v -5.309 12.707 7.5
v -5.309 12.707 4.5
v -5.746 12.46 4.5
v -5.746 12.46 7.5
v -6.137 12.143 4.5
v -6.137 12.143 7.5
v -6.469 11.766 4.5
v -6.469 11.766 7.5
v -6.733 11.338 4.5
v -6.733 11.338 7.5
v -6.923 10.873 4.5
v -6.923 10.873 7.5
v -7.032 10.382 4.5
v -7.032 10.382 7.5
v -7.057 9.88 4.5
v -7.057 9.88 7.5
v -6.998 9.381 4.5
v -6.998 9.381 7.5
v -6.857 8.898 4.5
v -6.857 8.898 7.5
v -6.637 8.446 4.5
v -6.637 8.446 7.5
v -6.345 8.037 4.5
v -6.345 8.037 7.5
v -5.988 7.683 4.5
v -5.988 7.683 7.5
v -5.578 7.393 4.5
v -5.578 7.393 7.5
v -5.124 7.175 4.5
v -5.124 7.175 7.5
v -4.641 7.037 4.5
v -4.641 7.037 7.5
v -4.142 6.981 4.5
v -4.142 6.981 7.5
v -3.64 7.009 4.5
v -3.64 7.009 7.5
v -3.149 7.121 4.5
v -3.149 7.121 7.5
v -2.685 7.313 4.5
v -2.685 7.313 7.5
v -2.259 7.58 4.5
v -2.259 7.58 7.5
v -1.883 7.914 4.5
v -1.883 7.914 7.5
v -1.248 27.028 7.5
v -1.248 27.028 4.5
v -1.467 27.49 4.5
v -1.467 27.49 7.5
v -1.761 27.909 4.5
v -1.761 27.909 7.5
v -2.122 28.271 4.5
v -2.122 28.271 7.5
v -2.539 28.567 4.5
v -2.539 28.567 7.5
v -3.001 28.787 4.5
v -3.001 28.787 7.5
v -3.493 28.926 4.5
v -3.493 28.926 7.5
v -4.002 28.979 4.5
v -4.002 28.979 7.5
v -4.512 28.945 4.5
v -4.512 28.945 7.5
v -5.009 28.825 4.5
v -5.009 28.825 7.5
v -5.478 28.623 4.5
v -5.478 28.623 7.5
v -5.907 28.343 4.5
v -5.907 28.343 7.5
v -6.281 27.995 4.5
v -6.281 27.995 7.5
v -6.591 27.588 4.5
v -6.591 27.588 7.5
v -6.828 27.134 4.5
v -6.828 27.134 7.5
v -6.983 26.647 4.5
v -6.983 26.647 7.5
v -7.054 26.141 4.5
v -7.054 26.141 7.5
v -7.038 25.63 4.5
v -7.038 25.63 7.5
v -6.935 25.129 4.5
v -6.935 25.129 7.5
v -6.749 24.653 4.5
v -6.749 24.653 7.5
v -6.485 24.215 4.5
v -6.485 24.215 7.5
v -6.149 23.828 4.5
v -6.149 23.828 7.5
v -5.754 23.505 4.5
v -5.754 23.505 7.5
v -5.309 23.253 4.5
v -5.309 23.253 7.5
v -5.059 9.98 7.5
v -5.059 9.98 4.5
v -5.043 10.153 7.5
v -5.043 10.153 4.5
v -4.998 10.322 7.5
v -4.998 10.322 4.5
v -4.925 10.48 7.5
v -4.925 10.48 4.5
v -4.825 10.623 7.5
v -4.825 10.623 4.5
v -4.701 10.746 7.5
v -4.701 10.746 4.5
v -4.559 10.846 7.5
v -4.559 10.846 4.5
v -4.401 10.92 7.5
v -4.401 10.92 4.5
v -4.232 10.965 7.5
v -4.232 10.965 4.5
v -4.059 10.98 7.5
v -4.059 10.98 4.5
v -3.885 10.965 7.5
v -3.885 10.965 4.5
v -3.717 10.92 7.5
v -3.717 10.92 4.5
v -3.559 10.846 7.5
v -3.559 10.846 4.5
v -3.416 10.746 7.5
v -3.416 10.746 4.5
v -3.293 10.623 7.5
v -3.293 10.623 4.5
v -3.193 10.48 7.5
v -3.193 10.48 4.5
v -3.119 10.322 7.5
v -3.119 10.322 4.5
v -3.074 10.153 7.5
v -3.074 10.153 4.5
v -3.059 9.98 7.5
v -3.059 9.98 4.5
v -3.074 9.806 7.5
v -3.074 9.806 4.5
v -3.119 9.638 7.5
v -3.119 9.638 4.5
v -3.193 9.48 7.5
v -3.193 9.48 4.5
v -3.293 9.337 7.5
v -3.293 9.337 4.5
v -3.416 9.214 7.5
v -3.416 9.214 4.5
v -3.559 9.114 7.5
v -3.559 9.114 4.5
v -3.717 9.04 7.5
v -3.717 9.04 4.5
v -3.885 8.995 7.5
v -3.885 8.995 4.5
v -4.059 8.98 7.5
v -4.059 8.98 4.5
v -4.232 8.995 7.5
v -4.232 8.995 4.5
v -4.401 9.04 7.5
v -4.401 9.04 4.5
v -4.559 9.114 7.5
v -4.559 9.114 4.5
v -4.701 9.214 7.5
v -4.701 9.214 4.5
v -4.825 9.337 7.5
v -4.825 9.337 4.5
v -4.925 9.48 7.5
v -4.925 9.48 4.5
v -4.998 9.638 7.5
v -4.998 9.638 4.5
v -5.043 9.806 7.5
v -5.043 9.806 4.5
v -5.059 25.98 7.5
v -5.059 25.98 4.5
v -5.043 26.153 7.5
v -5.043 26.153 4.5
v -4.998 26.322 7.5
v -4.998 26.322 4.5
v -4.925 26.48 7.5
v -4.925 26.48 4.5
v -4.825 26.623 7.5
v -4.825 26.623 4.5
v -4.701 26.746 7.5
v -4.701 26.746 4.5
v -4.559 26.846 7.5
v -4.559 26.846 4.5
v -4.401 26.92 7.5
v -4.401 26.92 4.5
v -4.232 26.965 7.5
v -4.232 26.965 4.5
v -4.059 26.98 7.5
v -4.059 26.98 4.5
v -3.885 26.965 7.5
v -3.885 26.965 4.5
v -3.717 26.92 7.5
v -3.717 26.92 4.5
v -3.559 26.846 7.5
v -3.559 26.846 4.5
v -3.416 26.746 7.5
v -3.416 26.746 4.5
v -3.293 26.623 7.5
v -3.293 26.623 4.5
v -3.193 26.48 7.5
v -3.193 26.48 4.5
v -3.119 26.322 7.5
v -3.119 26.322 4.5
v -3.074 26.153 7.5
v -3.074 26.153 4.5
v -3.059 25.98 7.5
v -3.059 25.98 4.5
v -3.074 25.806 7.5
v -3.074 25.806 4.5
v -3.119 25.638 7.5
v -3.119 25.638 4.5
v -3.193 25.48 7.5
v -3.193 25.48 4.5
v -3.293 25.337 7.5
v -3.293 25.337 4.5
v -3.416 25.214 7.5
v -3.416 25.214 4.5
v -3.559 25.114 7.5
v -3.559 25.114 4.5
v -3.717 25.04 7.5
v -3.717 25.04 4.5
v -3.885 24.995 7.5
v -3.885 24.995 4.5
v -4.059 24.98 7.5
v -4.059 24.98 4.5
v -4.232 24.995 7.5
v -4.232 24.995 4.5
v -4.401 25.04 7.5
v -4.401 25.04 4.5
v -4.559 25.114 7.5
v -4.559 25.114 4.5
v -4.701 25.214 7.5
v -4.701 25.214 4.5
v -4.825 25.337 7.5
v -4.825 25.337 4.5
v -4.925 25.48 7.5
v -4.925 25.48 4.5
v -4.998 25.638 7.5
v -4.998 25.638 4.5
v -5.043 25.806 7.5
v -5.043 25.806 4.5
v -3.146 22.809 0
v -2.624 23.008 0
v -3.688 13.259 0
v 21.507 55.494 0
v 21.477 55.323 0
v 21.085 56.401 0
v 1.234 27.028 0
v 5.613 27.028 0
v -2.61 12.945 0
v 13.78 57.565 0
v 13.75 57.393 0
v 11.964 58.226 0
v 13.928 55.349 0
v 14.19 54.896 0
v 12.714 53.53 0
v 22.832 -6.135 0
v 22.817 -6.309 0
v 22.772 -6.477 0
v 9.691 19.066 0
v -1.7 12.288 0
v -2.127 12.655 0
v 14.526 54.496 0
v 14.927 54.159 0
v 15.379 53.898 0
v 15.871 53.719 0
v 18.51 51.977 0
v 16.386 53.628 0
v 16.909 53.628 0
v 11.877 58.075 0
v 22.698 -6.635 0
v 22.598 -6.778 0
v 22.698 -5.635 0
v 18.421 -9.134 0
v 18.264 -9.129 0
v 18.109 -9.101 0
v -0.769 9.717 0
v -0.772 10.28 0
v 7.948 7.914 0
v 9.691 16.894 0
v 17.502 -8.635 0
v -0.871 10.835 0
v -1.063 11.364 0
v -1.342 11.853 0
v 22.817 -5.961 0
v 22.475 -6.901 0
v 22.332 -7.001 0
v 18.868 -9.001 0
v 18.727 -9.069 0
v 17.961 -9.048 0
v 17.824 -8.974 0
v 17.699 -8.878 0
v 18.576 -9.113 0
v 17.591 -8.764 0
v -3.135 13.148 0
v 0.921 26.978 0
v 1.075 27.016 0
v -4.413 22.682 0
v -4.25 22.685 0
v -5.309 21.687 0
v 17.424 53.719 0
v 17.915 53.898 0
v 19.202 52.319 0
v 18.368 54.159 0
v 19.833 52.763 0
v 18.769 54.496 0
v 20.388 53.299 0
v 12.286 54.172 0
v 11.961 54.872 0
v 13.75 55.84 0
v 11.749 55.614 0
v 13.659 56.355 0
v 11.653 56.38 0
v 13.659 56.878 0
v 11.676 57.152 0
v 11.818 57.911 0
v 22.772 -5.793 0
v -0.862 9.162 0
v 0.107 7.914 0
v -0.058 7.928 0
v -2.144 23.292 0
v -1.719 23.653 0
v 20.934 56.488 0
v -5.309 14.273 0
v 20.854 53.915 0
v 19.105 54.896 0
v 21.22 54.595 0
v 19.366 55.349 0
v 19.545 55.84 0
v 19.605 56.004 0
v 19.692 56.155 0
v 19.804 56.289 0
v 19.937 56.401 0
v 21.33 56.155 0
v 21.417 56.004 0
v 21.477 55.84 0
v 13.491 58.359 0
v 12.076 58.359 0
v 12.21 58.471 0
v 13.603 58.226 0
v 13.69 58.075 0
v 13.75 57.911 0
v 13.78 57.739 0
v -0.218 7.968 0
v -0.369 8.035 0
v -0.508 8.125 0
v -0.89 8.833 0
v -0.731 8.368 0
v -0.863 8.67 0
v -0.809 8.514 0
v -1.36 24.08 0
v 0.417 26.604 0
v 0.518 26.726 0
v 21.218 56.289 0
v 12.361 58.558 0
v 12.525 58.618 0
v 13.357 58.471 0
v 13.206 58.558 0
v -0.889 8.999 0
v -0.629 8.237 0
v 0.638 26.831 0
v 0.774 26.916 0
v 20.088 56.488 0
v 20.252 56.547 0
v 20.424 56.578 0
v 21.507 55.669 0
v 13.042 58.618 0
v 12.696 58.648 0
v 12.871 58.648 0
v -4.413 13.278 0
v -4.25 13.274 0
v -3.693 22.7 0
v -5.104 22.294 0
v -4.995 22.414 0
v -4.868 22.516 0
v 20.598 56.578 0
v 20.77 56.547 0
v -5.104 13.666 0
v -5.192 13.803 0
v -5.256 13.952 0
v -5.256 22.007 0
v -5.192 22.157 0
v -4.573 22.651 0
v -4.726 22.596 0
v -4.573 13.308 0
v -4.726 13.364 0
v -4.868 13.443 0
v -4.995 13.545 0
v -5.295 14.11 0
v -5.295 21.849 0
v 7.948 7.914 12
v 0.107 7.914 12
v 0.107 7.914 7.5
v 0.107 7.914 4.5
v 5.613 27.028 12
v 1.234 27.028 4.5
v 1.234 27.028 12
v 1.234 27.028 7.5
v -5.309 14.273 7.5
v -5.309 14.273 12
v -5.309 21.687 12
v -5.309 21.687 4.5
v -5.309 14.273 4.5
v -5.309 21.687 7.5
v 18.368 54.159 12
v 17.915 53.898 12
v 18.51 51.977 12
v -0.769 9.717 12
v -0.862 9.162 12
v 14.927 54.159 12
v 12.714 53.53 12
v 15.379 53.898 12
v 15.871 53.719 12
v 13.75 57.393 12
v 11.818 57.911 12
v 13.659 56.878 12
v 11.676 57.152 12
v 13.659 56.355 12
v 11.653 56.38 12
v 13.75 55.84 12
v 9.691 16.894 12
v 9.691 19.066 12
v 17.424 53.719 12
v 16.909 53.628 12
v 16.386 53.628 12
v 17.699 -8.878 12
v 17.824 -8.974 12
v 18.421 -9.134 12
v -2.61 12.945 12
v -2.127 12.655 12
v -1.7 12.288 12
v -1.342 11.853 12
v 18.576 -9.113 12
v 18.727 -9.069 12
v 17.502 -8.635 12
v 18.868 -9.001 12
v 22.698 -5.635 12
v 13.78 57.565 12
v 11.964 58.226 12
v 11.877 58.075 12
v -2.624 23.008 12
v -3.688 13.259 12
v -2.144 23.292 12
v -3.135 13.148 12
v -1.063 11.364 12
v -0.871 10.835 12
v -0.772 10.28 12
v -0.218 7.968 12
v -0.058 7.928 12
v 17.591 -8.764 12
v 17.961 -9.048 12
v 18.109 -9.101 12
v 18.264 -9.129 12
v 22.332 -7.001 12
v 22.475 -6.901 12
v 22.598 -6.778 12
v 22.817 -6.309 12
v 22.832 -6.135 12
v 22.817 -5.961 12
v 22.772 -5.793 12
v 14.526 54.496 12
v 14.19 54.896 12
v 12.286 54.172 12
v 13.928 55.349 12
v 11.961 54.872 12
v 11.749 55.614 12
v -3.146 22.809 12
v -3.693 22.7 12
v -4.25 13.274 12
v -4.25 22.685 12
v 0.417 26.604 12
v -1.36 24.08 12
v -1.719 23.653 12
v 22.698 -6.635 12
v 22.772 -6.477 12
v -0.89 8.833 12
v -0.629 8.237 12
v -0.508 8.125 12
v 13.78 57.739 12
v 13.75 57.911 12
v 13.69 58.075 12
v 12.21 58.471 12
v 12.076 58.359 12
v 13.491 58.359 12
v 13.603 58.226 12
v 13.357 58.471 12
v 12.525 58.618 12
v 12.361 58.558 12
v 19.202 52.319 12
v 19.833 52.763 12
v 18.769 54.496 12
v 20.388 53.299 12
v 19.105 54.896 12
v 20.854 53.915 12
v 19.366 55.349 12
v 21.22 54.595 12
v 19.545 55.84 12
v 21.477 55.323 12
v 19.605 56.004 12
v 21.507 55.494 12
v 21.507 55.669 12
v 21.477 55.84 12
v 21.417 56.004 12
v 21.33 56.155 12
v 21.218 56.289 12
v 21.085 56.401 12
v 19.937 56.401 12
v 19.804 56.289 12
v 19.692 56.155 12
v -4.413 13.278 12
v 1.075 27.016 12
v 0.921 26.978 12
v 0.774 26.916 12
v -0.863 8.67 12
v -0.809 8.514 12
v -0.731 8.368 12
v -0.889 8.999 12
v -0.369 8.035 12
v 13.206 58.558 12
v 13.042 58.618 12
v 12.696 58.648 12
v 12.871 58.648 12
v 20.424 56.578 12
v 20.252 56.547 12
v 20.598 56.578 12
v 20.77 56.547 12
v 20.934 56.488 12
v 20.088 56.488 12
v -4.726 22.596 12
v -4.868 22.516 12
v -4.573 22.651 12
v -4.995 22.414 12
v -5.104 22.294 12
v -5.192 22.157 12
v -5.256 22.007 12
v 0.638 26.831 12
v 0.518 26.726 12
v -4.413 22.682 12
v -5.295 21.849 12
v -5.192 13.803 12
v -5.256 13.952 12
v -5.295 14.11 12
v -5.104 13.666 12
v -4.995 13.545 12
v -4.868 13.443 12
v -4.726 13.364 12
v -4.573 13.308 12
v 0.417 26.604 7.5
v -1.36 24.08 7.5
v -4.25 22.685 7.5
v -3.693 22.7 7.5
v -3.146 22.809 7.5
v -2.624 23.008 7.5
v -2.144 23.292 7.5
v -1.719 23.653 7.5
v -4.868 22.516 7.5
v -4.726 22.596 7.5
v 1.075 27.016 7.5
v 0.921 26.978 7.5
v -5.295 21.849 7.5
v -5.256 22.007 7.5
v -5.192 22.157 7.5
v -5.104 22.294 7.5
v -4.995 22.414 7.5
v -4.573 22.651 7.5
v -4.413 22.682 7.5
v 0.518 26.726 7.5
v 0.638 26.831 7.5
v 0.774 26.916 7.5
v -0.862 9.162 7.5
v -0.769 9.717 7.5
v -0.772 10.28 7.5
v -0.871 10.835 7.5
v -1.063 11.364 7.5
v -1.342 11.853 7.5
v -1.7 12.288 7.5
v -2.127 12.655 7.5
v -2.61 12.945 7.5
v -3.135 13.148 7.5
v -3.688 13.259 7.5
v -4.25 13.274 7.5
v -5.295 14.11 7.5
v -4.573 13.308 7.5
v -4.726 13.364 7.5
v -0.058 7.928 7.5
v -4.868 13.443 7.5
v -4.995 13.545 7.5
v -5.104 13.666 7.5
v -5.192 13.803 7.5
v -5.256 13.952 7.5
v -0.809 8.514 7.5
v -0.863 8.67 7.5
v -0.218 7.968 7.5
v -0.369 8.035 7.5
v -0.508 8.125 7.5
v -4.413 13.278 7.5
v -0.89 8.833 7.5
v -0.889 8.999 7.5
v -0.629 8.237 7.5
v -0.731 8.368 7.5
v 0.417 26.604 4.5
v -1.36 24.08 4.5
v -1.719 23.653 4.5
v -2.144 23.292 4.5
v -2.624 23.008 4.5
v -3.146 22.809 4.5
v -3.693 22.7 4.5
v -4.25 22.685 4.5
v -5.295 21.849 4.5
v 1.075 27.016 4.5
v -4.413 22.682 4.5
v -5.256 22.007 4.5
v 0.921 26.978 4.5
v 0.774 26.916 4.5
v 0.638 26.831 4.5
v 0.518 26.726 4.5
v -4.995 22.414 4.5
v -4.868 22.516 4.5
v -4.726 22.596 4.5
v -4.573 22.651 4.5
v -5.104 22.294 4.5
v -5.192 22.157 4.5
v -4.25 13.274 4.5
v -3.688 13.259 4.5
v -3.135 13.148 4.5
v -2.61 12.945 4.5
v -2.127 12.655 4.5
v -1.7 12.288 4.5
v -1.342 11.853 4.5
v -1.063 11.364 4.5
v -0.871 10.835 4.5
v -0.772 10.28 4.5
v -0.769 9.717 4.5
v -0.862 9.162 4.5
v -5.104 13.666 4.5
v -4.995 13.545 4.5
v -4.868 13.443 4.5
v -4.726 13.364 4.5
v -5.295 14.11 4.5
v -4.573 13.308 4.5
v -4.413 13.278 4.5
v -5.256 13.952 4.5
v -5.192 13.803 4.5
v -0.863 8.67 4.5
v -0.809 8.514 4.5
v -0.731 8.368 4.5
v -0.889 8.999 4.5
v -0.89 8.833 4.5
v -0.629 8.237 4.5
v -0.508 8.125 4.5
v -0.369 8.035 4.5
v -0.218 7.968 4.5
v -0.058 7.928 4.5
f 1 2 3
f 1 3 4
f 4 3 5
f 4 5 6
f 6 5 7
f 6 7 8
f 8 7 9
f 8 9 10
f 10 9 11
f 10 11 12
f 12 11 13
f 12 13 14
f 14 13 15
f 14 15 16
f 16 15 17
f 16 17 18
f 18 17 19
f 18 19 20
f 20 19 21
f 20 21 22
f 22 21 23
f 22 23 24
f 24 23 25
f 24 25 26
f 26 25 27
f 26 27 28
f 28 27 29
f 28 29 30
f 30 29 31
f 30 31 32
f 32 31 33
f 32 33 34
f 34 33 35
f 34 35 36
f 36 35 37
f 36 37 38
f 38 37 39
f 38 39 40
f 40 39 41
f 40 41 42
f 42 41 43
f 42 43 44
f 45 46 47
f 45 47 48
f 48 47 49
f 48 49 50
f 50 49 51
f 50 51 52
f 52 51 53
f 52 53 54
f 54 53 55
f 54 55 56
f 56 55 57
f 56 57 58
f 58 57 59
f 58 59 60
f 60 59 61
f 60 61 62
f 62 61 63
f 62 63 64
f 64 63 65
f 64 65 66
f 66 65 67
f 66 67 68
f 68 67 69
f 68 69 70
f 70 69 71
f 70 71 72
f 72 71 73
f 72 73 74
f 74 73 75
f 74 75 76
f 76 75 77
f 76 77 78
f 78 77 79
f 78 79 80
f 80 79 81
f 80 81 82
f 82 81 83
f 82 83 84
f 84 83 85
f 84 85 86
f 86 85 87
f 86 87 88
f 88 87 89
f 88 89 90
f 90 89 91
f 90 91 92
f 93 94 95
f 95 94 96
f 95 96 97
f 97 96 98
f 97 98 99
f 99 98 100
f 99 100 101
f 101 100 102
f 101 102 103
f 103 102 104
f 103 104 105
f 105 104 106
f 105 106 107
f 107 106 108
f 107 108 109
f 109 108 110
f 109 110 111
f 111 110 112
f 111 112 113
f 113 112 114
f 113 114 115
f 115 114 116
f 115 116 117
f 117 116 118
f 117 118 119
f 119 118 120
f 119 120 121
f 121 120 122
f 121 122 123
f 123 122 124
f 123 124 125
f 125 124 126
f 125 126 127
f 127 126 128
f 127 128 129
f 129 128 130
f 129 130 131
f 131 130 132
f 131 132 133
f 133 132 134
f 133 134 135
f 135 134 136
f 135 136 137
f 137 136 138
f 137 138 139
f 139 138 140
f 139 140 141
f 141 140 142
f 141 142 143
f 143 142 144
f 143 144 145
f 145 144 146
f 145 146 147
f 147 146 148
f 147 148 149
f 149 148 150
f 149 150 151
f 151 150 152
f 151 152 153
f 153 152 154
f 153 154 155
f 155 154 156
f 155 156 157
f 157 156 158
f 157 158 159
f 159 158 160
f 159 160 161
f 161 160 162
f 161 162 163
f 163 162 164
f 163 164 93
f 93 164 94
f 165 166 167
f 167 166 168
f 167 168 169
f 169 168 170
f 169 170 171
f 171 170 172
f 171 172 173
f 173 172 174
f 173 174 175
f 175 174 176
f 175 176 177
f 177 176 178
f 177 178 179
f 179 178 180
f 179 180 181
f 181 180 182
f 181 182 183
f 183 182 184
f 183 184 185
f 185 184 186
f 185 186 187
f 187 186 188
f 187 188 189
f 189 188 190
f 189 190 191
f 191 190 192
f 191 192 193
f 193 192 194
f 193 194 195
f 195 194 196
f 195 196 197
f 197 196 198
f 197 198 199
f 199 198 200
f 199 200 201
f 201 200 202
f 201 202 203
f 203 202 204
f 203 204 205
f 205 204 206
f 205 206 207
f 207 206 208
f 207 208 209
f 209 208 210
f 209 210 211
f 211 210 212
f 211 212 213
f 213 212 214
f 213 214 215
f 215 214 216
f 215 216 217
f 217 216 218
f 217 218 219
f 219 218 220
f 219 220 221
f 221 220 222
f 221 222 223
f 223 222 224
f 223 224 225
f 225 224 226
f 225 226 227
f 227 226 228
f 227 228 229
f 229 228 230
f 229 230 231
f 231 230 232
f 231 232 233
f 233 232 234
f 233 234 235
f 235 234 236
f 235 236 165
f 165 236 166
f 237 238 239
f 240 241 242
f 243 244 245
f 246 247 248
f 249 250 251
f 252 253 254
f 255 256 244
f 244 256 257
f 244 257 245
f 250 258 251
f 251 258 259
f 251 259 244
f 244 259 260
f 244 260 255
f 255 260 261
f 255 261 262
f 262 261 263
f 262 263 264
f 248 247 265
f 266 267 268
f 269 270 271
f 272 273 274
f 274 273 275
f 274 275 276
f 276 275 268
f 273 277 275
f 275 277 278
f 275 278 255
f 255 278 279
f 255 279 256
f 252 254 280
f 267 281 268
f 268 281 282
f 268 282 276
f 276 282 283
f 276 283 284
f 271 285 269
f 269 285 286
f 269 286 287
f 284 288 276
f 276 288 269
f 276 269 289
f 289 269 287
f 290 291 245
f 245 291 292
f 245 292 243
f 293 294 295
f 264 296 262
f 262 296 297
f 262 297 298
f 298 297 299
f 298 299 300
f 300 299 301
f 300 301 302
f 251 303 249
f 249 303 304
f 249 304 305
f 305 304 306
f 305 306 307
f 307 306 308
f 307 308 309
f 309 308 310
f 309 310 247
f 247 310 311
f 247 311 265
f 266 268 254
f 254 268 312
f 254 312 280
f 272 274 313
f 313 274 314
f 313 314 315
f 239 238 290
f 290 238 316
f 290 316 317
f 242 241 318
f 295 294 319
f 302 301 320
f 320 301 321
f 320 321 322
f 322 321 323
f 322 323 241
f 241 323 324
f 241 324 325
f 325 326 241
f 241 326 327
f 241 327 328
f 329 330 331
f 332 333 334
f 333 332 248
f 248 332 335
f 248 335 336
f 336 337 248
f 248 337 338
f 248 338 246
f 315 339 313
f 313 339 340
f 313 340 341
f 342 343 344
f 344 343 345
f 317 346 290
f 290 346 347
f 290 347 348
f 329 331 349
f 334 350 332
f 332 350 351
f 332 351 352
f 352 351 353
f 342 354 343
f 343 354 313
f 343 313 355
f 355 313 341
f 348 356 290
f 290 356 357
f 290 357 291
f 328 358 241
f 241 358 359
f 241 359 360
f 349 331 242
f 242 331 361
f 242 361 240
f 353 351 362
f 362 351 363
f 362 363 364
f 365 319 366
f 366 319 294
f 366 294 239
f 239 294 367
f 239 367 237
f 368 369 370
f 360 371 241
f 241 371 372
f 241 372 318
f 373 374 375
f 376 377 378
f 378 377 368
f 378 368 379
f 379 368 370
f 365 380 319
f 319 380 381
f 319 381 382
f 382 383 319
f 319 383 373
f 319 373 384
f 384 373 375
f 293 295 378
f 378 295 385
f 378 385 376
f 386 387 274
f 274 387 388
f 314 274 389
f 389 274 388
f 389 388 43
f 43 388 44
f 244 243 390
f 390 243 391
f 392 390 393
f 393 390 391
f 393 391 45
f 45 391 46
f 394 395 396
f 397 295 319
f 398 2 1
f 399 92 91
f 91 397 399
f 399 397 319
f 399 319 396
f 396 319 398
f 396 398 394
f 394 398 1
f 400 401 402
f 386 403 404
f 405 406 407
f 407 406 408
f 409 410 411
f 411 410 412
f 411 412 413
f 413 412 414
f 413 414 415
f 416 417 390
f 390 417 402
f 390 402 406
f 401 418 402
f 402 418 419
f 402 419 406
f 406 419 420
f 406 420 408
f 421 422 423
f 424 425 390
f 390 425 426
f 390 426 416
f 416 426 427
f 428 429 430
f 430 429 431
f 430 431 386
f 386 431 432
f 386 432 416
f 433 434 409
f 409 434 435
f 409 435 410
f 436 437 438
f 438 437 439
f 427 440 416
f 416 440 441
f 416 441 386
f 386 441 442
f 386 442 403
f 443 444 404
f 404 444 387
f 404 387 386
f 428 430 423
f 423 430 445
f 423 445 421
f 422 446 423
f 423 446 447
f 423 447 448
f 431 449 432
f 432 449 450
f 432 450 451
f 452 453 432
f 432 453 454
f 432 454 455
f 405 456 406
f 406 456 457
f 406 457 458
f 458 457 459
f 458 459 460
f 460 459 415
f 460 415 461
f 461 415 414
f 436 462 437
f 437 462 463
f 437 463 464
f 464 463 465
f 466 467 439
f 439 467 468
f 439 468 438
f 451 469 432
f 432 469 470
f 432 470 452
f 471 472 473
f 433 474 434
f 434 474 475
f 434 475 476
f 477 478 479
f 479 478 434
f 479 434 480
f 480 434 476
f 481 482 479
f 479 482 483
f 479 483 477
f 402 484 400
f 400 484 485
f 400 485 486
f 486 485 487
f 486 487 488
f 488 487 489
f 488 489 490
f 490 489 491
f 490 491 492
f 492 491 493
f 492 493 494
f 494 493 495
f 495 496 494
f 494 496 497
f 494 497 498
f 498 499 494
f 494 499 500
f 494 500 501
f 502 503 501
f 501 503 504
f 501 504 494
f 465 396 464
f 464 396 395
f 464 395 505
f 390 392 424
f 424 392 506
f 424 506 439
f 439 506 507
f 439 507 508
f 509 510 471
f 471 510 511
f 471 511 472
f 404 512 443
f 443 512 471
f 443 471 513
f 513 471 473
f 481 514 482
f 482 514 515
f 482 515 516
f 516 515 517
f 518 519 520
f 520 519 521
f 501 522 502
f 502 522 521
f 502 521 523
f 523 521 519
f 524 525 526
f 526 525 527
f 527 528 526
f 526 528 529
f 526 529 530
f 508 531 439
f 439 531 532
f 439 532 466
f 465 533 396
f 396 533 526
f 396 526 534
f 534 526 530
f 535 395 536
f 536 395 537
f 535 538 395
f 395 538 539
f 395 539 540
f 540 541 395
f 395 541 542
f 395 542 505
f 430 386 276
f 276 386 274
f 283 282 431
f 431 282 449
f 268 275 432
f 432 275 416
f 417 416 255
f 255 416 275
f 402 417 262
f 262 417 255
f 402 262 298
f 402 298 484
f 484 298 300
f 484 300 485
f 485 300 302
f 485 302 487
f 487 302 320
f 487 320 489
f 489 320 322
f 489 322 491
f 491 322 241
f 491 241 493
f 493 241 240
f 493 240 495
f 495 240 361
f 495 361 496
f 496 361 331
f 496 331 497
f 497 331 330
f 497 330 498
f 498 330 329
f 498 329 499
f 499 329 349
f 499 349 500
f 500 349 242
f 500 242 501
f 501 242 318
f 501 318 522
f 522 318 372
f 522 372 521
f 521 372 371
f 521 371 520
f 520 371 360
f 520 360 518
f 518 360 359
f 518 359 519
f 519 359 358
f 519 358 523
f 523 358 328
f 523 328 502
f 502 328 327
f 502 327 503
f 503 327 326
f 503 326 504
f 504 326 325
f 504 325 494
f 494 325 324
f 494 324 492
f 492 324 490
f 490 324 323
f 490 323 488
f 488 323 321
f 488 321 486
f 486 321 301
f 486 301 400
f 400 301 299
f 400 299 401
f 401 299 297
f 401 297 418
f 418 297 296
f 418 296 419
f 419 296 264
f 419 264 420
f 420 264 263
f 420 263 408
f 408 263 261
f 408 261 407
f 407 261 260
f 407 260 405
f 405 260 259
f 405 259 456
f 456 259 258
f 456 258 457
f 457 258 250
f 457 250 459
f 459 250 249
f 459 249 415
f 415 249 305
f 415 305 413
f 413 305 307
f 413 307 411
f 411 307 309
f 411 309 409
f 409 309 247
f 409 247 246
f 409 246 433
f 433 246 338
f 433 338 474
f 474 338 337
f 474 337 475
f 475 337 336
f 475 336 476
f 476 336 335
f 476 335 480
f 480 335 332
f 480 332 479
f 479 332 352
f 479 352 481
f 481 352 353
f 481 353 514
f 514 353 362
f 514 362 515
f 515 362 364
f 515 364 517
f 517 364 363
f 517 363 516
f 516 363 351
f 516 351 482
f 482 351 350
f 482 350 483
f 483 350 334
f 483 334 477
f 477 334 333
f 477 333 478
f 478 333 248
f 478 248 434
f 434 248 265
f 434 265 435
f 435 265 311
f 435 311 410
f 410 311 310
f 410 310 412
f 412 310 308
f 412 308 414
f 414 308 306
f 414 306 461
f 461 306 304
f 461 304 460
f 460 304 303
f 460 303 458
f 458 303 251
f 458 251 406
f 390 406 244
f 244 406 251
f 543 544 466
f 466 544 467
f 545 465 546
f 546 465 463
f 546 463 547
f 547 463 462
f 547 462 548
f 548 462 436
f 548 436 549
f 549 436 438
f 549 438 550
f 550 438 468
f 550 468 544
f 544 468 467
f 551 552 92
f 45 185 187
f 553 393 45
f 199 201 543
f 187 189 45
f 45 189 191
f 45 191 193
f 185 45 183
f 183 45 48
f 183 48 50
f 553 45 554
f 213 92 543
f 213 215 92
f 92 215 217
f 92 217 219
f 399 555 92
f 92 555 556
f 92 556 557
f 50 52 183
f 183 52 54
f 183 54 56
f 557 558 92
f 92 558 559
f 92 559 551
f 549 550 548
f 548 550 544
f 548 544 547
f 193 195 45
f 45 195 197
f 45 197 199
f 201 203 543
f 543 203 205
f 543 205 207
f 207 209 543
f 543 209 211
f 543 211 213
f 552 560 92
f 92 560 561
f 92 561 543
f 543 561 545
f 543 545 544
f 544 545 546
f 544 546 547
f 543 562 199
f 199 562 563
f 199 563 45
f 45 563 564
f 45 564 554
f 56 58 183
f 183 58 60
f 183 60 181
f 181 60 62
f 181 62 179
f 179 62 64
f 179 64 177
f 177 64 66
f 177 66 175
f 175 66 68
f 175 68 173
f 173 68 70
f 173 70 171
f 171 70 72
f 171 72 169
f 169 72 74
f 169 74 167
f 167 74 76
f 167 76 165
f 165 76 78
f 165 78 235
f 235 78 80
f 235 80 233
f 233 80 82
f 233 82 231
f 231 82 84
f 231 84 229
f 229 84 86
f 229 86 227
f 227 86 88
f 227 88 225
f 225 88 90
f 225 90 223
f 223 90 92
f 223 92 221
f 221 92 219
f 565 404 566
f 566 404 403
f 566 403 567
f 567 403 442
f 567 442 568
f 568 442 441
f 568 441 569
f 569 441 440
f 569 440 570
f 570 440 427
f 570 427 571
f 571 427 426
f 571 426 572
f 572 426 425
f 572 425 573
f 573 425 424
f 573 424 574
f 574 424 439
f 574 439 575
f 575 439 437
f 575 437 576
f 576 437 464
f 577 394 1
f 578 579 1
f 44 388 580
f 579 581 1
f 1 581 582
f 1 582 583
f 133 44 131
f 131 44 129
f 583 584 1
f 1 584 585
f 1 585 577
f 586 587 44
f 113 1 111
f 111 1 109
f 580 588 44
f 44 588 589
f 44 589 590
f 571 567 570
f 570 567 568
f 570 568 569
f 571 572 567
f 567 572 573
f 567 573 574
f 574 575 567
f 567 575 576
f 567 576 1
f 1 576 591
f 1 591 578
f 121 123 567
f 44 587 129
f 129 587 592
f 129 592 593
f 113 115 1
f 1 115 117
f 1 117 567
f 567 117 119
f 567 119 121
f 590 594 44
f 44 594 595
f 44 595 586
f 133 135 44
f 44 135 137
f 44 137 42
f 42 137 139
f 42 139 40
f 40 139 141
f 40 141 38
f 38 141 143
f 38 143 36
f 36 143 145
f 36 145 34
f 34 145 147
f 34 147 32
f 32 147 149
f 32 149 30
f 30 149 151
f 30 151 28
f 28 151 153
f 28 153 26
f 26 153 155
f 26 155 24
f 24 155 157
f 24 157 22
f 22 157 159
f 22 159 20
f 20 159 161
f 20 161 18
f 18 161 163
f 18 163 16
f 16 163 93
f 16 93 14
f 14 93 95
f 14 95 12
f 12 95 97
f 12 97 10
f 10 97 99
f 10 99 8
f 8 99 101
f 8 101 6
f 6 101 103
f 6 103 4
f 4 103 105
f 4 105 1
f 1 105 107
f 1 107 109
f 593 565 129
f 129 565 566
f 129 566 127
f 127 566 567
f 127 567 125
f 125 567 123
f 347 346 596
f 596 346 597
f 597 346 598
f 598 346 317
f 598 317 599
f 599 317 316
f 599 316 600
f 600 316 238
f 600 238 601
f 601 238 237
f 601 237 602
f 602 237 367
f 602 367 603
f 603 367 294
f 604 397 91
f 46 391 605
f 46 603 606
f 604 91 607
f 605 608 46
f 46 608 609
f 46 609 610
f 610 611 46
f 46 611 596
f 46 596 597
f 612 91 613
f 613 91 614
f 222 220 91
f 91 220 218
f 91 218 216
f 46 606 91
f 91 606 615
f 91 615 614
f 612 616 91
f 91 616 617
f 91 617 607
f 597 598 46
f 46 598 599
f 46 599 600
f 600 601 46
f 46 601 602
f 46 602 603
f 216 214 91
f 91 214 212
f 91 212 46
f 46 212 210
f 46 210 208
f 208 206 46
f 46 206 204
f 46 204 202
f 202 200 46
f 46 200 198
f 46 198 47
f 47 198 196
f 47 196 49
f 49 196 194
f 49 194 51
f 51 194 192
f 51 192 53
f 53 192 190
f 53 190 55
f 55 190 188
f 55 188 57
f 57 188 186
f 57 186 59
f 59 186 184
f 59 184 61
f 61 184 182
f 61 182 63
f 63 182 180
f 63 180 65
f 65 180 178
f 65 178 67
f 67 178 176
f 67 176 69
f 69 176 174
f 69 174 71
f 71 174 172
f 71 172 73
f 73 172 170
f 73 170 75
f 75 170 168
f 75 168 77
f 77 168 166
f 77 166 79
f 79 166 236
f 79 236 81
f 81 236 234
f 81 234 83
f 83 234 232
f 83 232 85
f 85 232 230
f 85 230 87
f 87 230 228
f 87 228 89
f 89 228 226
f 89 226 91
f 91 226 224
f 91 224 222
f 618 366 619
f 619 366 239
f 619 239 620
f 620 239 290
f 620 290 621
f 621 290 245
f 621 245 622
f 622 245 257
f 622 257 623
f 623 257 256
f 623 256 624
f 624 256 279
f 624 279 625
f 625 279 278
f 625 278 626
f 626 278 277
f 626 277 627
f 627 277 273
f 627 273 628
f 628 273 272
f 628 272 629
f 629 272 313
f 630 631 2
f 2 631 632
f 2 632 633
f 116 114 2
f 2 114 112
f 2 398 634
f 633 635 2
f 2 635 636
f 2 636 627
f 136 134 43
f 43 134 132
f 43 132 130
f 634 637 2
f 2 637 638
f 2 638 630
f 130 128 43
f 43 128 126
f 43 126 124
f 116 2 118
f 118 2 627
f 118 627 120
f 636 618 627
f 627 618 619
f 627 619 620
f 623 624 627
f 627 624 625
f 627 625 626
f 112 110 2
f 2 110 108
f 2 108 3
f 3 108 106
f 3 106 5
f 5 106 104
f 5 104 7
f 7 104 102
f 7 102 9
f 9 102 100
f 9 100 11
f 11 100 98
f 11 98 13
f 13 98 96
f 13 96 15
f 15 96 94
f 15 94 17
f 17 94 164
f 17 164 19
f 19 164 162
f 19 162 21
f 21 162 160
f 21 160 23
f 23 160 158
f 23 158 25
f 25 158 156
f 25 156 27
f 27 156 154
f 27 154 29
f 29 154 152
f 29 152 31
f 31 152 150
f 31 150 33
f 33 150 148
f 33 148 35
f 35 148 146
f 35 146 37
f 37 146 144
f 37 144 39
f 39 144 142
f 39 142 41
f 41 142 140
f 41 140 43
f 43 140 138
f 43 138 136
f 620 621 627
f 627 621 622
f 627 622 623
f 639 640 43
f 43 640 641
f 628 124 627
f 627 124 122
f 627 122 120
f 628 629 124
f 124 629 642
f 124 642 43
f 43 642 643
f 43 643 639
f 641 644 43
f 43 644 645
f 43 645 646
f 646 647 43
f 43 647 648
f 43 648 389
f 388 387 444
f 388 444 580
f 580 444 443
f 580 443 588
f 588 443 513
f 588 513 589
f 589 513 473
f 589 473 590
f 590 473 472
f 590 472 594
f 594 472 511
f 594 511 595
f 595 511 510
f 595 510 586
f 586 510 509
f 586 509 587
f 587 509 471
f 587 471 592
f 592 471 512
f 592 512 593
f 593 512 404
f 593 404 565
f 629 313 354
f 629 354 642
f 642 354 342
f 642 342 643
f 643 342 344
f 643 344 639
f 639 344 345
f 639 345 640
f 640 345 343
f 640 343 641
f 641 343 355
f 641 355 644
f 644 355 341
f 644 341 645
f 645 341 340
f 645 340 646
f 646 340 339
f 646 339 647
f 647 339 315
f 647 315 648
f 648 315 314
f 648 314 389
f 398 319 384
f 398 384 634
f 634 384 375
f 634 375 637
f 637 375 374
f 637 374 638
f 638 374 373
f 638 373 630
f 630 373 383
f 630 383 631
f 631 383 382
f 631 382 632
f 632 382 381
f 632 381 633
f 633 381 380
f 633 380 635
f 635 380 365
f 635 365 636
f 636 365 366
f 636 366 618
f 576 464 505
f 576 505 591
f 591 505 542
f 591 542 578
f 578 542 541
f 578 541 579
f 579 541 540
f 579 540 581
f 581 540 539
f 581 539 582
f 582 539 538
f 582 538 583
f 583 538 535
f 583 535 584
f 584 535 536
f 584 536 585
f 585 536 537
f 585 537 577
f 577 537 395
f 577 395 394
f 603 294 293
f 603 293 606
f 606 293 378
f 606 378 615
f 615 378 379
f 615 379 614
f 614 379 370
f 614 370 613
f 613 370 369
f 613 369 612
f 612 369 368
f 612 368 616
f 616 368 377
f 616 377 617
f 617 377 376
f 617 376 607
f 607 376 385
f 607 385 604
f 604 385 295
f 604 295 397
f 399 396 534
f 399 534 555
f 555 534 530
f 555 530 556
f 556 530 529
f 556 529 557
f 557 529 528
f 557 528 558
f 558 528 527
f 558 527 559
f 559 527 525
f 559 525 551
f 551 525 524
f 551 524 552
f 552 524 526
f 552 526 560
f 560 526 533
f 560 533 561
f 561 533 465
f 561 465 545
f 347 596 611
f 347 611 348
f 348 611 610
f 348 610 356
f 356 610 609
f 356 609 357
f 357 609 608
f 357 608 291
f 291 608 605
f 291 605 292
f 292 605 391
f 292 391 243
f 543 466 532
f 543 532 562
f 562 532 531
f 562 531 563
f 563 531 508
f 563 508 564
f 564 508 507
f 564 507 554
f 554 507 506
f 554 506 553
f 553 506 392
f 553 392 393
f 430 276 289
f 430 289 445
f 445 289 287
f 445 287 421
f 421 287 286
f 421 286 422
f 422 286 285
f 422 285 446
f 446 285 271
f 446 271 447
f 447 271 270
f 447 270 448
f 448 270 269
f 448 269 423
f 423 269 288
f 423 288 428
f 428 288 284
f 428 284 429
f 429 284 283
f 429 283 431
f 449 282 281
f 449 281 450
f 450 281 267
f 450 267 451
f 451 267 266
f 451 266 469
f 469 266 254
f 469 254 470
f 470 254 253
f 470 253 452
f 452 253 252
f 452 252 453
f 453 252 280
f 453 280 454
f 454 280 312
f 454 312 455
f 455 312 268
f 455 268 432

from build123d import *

# Parameters (mm, degrees)
SKETCH1_R           = 1
BOSS_EXTRUDE1_DEPTH = 12
SKETCH2_R           = 3.3
CUT_EXTRUDE1_DEPTH  = 4.5
FILLET1_R           = 1
FILLET2_R           = 1


with BuildPart() as part:
    # Sketch1 → Boss-Extrude1 (new body)
    with BuildSketch(Plane.XY):
        with BuildLine():
            Line((-5.308637939, 12.706986515), (-5.308637939, 23.252630458))
            ThreePointArc((-5.308637939, 23.252630458), (-6.101385458, 28.176893504), (-1.247793812, 27.02821456))
            Line((-1.247793812, 27.02821456), (5.613218796, 27.02821456))
            Line((5.613218796, 27.02821456), (12.714242382, 53.529595368))
            ThreePointArc((12.714242382, 53.529595368), (11.748807445, 55.614439687), (11.81766691, 57.910936764))
            ThreePointArc((11.81766691, 57.910936764), (13.042411781, 58.618043545), (13.749518562, 57.393298673))
            ThreePointArc((13.749518562, 57.393298673), (15.870838906, 53.719064059), (19.54507352, 55.840384403))
            ThreePointArc((19.54507352, 55.840384403), (20.769818391, 56.547491184), (21.476925173, 55.322746313))
            ThreePointArc((21.476925173, 55.322746313), (20.38831068, 53.299491772), (18.50979734, 51.976681098))
            Line((18.50979734, 51.976681098), (9.691362061, 19.065832594))
            Line((9.691362061, 19.065832594), (9.691362061, 16.893784379))
            Line((9.691362061, 16.893784379), (23.198320346, -6.500953627))
            Line((23.198320346, -6.500953627), (18.002167924, -9.500953627))
            Line((18.002167924, -9.500953627), (7.947710262, 7.913877886))
            Line((7.947710262, 7.913877886), (-1.883337786, 7.913877886))
            ThreePointArc((-1.883337786, 7.913877886), (-6.49944061, 8.235537199), (-5.308637939, 12.706986515))
        make_face()
        with Locations((-4.058637939, 25.979808487)):
            Circle(SKETCH1_R, mode=Mode.SUBTRACT)
        with Locations((-4.058637939, 9.979808487)):
            Circle(SKETCH1_R, mode=Mode.SUBTRACT)
    extrude(amount=BOSS_EXTRUDE1_DEPTH)

    # Sketch2 → Cut-Extrude1 (cut)
    with BuildSketch(Plane.XY.offset(12)):
        with Locations((-4.058637939, 9.979808487)):
            Circle(SKETCH2_R)
        with BuildLine():
            Line((-1.360308715, 24.080066558), (2.301920689, 29.28177342))
            Line((2.301920689, 29.28177342), (-2.704987918, 28.989398429))
            ThreePointArc((-2.704987918, 28.989398429), (-7.241406986, 25.108039484), (-1.360308715, 24.080066558))
        make_face()
    cut_extrude1 = extrude(amount=-CUT_EXTRUDE1_DEPTH, mode=Mode.SUBTRACT)

    # Mirror1: Cut-Extrude1 across plane
    add(cut_extrude1.mirror(Plane.XY.offset(6)), mode=Mode.SUBTRACT)

    # Fillet1
    fillet1_edges = [part.edges().sort_by_distance(p)[0] for p in [
        (-5.308637939, 22.925712876, 9.75),
        (-5.308637939, 13.033904097, 9.75),
        (0.715316572, 27.02821456, 9.75),
        (-1.485326696, 7.913877886, 9.75),
        (-5.308637939, 22.925712876, 2.25),
        (-5.308637939, 13.033904097, 2.25),
        (0.715316572, 27.02821456, 2.25),
        (-1.485326696, 7.913877886, 2.25),
    ]]
    fillet(fillet1_edges, radius=FILLET1_R)

    # Fillet2
    fillet2_edges = [part.edges().sort_by_distance(p)[0] for p in [
        (23.198320346, -6.500953627, 6),
        (18.002167924, -9.500953627, 6),
    ]]
    fillet(fillet2_edges, radius=FILLET2_R)


solid = part.part
